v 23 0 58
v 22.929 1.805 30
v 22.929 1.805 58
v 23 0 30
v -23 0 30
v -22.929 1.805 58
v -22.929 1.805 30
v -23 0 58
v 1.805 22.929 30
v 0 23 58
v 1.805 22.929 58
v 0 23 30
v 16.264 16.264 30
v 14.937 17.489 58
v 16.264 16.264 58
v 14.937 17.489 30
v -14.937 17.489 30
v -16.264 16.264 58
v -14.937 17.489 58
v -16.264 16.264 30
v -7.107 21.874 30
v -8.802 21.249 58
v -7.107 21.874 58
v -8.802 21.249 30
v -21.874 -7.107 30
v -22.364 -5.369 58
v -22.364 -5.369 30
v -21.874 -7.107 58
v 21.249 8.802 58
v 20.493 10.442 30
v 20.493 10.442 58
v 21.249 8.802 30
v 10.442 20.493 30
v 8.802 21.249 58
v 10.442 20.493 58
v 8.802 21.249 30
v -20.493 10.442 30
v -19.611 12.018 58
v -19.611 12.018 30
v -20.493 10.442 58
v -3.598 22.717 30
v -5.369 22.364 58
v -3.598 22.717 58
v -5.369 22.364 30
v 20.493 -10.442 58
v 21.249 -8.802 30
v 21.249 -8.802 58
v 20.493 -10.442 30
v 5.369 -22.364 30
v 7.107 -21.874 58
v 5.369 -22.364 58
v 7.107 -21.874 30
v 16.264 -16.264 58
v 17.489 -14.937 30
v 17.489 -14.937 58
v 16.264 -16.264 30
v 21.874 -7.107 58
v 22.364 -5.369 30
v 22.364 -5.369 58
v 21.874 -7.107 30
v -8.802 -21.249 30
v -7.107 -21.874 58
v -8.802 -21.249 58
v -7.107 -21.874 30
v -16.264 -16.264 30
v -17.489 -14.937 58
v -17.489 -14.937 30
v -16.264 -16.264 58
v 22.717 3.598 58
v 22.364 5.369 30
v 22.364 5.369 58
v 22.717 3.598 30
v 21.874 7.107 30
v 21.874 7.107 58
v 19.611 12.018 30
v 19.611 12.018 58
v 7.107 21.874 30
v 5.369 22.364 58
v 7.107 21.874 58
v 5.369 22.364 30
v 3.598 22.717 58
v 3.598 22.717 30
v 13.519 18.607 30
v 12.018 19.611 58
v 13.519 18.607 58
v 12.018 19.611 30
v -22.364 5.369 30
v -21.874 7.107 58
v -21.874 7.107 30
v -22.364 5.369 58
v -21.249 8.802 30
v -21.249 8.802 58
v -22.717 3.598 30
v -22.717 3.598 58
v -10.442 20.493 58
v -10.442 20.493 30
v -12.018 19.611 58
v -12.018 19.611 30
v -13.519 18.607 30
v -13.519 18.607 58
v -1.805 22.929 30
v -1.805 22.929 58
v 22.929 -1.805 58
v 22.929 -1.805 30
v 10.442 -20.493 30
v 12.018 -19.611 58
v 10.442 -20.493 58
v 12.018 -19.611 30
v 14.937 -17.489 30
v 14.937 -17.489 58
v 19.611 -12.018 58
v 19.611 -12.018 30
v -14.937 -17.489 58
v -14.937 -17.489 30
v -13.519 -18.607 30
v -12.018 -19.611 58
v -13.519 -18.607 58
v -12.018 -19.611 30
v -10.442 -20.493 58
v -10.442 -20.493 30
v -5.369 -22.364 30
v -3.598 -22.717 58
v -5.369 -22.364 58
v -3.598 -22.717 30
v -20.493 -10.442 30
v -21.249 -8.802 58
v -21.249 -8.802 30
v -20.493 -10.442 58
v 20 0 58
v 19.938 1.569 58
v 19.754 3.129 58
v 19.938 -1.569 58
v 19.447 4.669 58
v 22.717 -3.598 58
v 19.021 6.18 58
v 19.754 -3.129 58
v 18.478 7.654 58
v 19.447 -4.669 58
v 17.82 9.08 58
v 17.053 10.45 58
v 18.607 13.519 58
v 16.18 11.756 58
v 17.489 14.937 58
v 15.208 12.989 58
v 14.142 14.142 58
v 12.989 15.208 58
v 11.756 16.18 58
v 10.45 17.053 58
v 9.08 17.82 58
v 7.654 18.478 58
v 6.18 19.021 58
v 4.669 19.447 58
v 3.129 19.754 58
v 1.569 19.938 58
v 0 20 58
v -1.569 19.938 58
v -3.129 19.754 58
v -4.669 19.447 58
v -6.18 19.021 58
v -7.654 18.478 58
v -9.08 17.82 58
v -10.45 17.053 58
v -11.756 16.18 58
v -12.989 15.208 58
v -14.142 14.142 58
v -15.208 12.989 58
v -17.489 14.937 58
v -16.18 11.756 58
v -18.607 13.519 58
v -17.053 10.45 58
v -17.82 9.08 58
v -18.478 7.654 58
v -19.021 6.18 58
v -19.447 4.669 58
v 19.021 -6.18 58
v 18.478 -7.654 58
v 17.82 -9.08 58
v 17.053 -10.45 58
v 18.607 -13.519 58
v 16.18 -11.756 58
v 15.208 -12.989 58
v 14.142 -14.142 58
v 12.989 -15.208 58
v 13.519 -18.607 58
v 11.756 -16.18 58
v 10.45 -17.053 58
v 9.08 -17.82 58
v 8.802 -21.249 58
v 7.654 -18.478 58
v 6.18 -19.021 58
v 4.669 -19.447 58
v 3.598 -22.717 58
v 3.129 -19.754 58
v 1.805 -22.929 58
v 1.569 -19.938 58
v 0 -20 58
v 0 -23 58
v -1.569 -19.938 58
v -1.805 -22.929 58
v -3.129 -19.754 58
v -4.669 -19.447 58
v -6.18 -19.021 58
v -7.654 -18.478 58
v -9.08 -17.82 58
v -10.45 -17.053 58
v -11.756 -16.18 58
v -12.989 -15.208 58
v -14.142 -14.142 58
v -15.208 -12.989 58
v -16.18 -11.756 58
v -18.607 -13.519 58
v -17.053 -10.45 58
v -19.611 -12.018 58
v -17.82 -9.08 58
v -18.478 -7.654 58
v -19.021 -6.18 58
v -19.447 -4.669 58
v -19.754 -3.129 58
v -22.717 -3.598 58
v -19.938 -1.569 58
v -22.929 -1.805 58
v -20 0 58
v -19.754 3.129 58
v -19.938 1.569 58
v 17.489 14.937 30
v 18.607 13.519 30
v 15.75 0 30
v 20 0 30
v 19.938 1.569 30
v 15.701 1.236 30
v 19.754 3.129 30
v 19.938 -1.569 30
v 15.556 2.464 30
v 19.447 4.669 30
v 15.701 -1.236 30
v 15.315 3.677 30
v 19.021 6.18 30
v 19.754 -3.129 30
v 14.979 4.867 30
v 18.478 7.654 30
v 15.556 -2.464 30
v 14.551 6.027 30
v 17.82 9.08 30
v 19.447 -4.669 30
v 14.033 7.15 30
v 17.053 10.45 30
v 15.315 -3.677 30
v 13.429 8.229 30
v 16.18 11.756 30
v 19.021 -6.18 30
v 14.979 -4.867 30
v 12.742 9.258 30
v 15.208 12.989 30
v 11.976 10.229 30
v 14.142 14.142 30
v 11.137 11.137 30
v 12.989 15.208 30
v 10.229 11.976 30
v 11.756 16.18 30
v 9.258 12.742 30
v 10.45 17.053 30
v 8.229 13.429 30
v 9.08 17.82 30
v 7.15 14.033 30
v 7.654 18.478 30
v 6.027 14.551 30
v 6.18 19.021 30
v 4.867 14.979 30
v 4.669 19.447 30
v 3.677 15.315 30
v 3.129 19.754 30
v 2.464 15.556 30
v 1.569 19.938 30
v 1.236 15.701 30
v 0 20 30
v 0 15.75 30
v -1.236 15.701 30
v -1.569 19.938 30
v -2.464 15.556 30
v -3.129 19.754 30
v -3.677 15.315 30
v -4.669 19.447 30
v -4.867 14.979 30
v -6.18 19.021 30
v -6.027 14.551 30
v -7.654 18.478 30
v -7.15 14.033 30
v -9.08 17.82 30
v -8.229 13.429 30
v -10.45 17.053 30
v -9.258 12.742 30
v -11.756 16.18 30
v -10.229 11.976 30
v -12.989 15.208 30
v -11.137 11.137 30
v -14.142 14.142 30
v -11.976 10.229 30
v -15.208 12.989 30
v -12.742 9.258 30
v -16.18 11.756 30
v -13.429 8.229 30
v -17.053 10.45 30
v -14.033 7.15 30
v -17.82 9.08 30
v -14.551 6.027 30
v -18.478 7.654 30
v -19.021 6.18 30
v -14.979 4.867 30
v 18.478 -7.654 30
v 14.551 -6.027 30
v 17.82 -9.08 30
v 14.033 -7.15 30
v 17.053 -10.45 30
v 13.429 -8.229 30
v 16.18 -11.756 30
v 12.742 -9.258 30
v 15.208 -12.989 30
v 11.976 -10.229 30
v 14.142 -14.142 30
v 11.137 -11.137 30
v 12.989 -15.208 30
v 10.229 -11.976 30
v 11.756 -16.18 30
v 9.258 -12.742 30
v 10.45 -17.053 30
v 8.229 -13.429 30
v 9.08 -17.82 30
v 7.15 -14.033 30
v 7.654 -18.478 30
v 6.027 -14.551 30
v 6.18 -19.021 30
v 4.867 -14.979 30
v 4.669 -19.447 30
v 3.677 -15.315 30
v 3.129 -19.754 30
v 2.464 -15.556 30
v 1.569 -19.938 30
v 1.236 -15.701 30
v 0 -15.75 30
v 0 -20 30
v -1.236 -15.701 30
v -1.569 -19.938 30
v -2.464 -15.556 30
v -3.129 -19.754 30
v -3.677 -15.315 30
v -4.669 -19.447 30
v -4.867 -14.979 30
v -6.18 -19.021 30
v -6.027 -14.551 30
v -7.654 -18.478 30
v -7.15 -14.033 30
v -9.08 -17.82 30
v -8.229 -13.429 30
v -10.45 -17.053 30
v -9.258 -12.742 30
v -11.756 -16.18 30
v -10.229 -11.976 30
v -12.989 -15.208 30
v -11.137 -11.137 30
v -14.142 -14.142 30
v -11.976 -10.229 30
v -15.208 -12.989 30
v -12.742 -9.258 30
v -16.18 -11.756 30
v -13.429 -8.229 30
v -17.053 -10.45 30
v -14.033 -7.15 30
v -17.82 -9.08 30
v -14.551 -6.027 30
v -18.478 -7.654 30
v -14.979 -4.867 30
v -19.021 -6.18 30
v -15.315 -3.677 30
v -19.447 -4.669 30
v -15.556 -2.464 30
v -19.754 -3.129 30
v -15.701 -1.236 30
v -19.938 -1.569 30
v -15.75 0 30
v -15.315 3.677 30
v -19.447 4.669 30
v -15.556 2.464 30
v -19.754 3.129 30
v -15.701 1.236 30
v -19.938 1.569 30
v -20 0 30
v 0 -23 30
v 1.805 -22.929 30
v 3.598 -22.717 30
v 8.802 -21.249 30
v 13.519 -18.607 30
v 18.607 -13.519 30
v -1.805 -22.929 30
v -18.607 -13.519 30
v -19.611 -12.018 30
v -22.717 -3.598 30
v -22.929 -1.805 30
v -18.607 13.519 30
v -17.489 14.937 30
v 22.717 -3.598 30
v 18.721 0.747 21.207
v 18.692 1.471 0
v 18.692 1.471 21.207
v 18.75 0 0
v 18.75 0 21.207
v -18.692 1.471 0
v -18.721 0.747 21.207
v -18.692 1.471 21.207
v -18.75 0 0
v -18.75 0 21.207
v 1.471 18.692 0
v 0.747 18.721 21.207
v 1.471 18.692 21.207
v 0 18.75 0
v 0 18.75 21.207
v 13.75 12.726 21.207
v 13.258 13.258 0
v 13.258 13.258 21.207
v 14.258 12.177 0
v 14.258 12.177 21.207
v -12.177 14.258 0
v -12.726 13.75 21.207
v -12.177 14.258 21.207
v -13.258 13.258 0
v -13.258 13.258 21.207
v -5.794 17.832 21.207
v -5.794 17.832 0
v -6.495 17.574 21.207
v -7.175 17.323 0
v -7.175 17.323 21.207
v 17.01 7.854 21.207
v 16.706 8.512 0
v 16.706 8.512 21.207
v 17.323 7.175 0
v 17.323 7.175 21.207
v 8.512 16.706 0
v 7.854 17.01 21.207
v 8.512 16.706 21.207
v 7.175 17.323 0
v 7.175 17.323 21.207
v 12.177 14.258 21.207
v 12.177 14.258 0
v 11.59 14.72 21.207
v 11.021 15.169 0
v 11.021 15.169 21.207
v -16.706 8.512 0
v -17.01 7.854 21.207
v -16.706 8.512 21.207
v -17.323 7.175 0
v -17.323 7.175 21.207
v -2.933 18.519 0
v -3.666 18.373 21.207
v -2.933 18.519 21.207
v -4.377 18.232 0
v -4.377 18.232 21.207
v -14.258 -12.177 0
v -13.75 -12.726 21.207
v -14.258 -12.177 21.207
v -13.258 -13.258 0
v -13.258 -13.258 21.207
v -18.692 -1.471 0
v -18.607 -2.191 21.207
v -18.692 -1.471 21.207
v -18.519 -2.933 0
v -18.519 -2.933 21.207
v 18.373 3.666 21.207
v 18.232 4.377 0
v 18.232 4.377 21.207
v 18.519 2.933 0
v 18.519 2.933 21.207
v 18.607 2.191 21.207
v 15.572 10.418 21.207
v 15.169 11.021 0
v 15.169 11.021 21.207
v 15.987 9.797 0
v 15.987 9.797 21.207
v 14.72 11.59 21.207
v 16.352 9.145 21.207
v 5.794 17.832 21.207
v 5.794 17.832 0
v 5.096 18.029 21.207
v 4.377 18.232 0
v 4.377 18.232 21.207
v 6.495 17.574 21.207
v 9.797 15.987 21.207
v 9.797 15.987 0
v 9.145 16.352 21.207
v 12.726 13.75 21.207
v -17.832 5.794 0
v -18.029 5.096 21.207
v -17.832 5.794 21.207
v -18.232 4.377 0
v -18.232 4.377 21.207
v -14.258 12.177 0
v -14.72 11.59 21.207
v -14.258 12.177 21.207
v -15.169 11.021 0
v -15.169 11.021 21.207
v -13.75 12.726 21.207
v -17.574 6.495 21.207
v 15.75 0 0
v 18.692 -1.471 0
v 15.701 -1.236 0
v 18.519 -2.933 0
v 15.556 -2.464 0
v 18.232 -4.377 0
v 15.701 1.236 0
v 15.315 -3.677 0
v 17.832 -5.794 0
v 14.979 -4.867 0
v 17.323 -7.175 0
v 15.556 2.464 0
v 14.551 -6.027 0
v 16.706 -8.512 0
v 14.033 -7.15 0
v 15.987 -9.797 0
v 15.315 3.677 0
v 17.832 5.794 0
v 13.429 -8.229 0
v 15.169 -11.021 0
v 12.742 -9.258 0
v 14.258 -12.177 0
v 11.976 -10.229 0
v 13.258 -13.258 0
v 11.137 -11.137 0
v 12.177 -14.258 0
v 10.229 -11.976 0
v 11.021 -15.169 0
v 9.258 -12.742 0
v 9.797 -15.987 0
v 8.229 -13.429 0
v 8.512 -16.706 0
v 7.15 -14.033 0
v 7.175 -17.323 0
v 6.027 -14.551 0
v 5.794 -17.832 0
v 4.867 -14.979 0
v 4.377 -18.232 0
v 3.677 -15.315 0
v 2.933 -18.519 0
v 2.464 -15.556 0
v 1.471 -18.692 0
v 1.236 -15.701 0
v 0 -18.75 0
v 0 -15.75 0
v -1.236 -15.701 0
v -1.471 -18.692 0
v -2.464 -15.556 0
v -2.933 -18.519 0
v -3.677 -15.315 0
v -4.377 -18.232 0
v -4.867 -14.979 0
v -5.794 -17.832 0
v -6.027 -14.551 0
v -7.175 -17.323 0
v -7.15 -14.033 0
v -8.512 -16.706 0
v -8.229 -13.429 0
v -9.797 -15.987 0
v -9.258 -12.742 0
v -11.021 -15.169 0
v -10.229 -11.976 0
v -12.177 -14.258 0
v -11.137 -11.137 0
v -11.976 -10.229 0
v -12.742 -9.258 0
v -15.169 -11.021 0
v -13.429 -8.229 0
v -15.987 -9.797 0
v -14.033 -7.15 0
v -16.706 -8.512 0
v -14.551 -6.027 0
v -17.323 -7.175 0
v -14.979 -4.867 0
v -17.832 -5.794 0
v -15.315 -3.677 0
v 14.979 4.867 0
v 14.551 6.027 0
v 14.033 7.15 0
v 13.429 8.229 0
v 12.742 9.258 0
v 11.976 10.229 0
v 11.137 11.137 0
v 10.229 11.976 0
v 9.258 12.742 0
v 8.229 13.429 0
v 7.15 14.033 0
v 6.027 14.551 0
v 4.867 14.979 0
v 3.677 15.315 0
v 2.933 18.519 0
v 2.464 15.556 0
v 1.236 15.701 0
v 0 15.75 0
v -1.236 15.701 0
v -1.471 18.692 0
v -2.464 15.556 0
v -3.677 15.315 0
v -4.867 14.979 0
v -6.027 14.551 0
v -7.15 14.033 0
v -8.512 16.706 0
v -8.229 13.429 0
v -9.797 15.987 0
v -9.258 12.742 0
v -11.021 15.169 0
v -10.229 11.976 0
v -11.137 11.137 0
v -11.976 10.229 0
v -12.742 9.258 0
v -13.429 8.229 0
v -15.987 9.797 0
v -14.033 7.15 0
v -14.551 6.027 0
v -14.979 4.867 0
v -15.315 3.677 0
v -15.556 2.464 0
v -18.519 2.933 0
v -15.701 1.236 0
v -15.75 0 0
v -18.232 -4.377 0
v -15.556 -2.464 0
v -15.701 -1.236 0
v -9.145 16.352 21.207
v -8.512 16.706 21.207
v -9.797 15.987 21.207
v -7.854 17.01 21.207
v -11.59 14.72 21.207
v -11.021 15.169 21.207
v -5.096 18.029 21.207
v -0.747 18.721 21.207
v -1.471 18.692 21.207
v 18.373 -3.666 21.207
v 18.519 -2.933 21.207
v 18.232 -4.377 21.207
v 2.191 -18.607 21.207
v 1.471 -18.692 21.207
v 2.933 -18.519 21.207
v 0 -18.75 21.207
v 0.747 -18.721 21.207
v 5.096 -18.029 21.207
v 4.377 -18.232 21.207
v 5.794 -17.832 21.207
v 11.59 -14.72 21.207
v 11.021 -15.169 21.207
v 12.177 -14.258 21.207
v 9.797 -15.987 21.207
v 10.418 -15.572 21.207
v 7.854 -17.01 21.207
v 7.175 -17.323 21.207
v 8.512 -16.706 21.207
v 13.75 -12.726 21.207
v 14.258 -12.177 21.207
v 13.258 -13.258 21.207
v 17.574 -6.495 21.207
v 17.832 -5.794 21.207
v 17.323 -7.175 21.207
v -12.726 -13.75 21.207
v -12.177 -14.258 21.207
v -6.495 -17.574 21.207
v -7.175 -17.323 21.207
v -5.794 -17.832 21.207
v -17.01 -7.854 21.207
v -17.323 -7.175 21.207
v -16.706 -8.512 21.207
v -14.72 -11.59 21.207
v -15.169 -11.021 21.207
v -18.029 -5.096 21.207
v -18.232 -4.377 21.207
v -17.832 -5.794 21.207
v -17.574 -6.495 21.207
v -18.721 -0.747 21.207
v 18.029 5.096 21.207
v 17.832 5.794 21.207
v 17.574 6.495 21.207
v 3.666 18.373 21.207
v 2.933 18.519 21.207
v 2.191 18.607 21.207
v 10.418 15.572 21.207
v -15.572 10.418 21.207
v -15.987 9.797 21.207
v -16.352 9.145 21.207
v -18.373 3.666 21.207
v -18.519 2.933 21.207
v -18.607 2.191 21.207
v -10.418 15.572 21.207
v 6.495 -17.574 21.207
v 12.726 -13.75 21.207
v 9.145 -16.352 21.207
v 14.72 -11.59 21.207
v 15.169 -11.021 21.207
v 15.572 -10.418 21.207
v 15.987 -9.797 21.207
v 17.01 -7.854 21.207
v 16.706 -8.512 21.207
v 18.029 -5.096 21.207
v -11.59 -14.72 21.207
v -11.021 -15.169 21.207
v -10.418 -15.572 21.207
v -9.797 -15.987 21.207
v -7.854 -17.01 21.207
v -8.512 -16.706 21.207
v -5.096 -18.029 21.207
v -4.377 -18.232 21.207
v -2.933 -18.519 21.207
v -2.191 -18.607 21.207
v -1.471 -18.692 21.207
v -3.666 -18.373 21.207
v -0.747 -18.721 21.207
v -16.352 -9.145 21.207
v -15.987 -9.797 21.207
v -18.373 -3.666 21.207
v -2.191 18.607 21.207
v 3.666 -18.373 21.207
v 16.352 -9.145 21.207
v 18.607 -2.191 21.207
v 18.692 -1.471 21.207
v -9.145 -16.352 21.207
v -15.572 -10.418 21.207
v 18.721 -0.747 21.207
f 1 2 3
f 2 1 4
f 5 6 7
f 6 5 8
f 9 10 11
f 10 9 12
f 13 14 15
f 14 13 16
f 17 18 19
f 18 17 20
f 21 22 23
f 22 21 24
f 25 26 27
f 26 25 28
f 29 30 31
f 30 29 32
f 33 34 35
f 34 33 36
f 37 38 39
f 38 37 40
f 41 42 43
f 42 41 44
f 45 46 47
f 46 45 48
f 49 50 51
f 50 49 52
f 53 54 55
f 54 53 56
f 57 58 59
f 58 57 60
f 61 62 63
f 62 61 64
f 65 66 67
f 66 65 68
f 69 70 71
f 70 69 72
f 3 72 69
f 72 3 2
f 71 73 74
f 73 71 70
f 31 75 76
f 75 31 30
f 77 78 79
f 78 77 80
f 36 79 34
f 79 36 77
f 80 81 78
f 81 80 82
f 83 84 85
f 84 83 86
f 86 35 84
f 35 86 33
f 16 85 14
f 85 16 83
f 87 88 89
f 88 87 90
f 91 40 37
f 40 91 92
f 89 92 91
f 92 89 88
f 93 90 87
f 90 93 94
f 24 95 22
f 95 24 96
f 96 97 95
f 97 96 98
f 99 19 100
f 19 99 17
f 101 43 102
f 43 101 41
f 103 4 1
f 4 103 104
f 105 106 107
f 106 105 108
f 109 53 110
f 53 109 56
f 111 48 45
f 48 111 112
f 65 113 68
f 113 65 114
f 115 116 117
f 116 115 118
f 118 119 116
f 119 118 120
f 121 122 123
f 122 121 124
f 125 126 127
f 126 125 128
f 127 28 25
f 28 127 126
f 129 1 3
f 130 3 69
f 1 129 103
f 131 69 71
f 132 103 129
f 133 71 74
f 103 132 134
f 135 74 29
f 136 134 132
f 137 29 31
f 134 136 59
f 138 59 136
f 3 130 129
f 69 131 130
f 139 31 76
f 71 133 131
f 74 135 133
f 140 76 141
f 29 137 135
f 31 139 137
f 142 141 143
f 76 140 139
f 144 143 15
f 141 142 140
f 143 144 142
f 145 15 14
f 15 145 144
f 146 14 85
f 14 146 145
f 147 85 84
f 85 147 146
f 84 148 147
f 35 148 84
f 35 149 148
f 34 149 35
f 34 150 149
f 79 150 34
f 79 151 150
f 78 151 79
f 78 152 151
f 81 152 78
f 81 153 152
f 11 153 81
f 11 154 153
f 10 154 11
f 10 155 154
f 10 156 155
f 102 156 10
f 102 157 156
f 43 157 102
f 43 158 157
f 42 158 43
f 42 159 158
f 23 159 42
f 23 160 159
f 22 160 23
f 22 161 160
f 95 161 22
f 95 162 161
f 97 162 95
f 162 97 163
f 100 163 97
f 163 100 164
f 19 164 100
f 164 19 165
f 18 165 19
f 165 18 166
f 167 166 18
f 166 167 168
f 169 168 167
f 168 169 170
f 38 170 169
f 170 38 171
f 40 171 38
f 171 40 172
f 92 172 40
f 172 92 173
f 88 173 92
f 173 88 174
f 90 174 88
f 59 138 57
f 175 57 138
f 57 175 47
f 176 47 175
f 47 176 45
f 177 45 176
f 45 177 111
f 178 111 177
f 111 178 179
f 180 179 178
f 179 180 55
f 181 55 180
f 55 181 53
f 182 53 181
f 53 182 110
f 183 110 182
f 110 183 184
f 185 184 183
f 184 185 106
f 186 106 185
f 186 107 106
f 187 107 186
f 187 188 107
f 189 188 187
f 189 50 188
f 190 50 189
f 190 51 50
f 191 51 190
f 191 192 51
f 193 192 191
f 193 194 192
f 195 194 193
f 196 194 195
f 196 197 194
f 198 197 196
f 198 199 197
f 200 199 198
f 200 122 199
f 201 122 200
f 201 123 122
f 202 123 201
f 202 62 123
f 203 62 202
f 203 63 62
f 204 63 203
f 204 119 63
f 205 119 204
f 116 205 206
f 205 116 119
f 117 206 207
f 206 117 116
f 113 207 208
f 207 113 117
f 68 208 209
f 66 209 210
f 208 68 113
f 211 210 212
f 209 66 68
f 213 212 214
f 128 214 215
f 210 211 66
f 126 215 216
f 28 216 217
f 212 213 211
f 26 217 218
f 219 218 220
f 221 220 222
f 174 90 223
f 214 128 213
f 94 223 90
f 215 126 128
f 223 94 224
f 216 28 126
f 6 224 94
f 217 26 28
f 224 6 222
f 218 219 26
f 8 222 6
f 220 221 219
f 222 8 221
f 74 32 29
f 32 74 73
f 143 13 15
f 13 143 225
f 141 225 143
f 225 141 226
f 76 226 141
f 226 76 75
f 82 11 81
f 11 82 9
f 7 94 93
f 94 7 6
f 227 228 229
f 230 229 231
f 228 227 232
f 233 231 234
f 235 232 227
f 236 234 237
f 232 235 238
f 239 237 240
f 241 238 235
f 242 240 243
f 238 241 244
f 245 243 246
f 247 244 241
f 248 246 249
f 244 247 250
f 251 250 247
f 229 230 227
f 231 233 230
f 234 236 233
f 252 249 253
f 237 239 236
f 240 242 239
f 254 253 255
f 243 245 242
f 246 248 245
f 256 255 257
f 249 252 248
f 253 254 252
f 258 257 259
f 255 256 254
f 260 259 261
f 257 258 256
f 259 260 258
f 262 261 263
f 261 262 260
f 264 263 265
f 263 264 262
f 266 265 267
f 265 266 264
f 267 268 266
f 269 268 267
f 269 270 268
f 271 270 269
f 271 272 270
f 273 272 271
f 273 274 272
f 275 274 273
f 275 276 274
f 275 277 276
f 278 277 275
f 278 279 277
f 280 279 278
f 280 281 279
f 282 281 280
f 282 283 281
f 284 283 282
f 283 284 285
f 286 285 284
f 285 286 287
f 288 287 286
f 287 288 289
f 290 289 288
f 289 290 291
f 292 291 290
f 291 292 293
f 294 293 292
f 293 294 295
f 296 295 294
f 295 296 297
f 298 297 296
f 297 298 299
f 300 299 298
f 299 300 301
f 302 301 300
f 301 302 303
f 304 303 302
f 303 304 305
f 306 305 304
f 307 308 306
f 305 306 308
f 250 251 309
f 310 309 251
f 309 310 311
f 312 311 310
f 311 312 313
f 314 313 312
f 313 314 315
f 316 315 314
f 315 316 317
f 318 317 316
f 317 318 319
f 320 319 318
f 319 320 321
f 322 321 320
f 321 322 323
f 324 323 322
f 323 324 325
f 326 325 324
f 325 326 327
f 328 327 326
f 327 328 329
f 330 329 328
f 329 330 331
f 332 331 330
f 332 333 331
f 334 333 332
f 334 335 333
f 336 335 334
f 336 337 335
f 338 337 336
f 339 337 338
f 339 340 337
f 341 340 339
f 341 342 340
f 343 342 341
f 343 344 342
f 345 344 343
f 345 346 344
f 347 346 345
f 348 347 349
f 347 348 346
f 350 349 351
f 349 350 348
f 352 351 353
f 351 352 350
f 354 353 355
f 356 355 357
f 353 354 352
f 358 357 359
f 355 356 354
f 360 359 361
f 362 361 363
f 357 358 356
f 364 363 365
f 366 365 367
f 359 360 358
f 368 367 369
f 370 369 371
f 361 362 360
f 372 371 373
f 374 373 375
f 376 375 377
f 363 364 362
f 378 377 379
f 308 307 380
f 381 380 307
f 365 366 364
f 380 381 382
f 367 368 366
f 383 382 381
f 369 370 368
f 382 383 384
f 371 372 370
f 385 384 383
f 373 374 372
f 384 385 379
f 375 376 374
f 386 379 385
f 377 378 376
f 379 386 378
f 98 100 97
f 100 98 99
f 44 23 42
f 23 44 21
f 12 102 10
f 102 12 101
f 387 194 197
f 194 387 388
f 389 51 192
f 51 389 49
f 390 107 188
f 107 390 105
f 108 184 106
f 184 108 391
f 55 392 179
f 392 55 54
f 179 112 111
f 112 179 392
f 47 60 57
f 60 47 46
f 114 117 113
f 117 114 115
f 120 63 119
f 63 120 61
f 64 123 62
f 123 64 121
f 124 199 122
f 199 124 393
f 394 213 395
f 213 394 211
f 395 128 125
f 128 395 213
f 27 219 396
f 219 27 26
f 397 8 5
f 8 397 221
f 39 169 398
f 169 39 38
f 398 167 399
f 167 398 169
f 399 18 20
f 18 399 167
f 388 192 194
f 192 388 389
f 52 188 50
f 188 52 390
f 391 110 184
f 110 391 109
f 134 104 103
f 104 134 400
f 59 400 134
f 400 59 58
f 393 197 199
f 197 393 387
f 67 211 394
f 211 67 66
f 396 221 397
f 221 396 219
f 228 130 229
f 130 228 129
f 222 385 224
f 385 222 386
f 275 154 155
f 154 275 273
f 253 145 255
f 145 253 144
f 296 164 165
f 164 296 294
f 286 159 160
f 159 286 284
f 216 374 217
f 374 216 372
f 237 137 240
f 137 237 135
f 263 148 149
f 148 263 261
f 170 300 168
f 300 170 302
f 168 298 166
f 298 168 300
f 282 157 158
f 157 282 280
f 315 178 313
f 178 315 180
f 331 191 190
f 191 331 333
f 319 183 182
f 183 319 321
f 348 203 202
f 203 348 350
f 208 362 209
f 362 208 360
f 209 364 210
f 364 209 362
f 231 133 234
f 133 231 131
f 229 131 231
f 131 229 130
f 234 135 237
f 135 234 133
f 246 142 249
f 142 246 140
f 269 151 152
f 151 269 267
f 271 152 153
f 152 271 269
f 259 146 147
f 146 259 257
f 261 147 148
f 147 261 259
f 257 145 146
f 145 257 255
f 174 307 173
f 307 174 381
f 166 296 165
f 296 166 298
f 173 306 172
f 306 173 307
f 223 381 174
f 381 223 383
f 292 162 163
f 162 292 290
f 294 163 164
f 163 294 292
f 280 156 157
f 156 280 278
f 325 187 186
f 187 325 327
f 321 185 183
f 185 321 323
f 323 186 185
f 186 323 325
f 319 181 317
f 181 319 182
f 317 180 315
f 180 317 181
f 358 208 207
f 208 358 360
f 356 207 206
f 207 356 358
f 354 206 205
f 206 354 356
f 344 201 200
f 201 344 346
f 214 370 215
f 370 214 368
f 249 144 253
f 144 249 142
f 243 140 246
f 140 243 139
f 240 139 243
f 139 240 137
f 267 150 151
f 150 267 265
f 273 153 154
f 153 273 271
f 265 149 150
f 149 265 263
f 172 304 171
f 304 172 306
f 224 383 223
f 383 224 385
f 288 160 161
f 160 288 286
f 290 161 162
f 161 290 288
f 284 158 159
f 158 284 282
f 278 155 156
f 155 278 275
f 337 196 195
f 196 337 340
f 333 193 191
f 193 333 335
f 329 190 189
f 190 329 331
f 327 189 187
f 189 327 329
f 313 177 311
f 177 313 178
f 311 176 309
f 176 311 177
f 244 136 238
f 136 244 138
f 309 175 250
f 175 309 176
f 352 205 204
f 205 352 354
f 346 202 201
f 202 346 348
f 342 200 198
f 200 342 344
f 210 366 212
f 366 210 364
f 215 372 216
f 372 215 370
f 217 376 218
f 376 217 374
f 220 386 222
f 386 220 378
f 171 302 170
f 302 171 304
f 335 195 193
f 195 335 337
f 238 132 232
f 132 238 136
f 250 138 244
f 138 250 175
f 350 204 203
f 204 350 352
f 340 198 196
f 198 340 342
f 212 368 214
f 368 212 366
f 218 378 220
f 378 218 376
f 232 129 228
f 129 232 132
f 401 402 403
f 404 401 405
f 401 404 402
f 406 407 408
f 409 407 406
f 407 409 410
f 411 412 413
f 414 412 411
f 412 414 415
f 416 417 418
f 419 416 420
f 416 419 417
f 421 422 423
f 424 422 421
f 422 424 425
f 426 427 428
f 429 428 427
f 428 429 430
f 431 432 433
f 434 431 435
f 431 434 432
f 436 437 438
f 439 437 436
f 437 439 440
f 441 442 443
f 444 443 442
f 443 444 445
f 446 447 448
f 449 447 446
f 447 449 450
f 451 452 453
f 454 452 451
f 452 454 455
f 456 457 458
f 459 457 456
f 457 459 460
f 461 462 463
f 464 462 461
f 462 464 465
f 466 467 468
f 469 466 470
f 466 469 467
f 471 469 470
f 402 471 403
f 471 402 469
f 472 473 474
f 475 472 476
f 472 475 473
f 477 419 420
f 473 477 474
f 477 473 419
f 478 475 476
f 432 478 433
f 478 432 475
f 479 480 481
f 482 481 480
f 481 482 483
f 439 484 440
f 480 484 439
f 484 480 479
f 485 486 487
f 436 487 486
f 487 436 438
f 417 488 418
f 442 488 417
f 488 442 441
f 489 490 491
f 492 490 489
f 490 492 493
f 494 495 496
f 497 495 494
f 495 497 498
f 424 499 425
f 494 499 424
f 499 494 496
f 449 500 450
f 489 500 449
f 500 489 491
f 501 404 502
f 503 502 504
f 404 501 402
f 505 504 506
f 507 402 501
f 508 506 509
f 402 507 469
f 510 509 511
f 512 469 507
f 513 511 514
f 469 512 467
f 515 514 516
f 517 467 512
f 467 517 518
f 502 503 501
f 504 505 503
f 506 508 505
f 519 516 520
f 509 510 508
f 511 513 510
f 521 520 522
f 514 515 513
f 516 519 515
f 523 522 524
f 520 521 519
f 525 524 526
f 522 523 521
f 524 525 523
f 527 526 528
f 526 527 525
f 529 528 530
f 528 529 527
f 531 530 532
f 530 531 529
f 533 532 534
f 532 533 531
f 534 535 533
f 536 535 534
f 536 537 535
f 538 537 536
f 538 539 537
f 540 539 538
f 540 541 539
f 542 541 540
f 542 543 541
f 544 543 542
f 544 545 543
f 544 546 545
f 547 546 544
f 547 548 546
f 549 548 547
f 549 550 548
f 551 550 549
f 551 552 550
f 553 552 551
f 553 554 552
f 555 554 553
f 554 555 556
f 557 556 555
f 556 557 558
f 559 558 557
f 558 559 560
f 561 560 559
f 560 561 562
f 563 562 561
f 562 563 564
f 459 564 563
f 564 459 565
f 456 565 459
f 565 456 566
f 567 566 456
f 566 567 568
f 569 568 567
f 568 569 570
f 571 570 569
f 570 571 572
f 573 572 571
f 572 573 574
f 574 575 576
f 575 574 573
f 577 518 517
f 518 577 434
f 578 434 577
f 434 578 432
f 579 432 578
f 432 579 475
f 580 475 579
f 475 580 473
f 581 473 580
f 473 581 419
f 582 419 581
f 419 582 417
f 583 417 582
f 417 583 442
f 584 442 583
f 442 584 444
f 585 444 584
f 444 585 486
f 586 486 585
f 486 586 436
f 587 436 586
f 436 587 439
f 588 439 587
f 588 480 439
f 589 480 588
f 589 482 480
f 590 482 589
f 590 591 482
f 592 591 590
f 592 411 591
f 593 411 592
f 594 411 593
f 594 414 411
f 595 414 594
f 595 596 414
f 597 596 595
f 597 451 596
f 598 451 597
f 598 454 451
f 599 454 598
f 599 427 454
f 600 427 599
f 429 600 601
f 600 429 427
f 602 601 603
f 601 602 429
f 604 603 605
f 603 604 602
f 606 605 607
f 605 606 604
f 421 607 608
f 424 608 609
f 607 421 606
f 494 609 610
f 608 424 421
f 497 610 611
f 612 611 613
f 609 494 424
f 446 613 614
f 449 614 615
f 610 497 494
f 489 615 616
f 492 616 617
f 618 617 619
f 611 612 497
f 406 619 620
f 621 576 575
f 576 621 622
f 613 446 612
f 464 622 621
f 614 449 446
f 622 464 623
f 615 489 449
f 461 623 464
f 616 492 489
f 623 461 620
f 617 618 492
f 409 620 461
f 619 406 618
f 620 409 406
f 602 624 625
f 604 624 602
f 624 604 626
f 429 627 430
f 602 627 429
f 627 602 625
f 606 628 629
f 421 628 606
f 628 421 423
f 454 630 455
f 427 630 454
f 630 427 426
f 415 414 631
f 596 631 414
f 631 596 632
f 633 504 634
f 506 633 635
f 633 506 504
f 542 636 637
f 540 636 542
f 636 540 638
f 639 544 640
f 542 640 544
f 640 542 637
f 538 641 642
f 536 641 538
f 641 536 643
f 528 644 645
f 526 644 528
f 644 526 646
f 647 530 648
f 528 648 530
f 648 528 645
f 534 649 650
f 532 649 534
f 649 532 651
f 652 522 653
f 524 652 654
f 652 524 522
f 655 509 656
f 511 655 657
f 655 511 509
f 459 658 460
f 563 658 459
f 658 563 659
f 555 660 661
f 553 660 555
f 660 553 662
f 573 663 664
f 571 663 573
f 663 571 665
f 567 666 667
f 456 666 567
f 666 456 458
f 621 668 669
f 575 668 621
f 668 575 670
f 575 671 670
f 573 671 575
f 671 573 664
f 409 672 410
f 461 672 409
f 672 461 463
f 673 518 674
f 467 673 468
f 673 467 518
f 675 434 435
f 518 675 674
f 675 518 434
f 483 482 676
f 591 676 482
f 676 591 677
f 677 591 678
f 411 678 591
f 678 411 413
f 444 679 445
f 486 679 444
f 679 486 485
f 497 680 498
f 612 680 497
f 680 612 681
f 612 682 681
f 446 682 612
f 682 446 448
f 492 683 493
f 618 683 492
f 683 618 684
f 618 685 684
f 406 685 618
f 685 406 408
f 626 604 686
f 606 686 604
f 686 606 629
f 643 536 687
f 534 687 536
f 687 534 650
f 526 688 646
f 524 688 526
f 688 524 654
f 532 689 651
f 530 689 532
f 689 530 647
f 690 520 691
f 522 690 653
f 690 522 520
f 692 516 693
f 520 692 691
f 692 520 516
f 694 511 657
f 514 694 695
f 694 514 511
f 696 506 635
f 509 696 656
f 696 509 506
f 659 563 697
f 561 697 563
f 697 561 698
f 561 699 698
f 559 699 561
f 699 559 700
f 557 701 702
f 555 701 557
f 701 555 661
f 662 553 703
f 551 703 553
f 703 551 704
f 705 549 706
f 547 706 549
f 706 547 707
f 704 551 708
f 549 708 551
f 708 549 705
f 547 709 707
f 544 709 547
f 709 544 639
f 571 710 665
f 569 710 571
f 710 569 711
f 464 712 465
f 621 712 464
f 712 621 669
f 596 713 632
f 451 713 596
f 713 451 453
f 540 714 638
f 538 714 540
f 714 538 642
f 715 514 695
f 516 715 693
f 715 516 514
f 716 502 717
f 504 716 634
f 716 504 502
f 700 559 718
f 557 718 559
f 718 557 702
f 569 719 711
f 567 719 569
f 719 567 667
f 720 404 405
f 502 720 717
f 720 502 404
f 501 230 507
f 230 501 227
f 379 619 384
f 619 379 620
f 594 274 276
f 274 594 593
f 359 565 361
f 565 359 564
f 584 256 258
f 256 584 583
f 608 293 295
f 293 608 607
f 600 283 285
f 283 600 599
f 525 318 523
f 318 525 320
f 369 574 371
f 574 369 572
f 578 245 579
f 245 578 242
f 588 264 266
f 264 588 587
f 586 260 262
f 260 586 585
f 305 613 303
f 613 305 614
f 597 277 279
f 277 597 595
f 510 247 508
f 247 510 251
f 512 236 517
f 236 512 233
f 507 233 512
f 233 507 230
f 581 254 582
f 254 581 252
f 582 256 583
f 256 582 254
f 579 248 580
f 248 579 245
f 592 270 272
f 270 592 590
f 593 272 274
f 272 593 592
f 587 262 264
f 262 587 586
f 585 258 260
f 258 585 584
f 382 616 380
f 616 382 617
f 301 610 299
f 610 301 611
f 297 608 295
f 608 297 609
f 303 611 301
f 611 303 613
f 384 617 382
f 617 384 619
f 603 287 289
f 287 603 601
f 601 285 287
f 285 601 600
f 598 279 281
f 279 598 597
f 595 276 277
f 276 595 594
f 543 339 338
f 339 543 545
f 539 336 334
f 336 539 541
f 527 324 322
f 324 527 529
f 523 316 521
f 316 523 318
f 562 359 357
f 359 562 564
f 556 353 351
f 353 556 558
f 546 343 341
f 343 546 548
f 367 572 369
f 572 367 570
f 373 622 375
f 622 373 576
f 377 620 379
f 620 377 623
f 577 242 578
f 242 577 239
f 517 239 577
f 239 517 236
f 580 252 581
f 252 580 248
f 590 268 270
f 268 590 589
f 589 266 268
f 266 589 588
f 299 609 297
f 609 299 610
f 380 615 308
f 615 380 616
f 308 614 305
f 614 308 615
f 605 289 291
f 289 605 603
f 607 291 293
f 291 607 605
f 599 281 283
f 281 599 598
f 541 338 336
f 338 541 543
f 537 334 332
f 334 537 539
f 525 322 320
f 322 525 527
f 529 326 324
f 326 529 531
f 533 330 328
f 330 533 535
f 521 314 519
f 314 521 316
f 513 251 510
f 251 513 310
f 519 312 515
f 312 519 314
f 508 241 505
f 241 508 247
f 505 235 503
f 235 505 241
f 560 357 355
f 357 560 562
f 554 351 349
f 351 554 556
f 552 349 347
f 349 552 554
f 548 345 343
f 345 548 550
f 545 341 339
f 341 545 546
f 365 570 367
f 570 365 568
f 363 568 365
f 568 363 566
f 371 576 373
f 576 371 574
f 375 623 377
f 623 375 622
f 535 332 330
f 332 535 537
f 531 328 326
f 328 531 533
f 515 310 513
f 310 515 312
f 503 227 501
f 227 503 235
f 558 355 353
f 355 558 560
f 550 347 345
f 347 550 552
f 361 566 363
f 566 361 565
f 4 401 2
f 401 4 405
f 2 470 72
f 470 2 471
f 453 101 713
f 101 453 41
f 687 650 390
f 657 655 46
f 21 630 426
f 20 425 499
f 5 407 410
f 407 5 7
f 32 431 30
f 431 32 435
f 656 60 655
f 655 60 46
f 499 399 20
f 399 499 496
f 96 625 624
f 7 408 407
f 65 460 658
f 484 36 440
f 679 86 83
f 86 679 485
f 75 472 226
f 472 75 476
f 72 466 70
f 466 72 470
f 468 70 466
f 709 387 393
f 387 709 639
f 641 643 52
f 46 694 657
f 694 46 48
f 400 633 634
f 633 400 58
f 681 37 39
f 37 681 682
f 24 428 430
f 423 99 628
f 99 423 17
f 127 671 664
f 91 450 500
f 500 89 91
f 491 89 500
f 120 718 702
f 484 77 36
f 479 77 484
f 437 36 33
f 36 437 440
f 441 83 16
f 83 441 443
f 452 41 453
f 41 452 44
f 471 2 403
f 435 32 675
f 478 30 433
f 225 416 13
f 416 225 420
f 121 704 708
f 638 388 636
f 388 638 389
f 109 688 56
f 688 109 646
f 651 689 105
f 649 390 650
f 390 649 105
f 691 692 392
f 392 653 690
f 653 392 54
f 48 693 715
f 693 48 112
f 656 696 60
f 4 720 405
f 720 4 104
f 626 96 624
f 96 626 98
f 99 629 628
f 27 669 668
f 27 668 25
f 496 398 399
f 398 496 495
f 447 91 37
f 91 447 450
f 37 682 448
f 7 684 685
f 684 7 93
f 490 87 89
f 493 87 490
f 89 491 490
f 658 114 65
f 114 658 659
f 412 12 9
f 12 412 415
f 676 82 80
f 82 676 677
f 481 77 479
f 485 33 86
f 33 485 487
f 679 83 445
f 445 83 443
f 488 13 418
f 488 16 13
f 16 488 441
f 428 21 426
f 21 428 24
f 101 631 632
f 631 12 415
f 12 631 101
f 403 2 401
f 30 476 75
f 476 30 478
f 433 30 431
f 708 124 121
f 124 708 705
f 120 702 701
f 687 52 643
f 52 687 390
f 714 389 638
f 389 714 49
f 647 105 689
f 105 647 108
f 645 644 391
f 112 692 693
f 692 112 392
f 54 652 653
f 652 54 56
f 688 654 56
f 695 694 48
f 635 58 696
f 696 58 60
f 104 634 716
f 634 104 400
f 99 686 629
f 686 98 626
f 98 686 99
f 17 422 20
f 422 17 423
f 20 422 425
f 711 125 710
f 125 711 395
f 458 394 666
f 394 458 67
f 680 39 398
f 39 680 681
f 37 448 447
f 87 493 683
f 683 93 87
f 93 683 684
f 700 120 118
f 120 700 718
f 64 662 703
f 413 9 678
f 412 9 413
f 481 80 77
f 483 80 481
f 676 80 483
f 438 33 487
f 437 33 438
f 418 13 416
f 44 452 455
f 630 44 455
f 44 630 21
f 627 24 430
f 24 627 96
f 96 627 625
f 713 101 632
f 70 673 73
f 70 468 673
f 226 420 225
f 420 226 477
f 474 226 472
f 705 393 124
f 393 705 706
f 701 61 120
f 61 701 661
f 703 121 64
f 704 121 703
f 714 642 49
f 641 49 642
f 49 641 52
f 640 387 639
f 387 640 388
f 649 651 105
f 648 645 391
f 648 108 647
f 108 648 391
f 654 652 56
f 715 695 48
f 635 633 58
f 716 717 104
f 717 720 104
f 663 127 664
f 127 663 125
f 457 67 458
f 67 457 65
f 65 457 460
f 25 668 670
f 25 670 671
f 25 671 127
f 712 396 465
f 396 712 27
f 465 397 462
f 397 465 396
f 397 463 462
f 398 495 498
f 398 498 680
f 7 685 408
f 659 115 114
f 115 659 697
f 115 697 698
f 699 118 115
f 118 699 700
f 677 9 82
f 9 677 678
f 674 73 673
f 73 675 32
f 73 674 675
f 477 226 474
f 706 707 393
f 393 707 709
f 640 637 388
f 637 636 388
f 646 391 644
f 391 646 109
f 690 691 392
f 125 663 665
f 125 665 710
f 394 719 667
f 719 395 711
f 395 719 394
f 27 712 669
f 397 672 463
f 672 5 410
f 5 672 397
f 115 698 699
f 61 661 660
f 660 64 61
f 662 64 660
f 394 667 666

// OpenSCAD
// An adapter to fit the hose from my Shop-Vac 9520262 5-Gallon
// 4.5-Peak HP Hang Up Wall Mounted Wet/Dry Vacuum to the dust adapter
// on my DeWalt DW705 12" mitre saw.
//
wall_thickness = 3;
dw_adapter_id = 40;
sv_adapter_id = 31.5;

dw_h = 28;
sv_h = 30;
joiner_h = 15;
$fn = 80;

version = 1.0;

module dw_fitting() {
  difference() {
    cylinder(h=dw_h, r=(dw_adapter_id / 2) + wall_thickness, center=true);
    cylinder(h=dw_h+0.1, r=(dw_adapter_id / 2), center=true);
  }
}

module sv_fitting() {
  difference() {
    cylinder(h=sv_h, r=(sv_adapter_id / 2) + wall_thickness, center=true);
    cylinder(h=sv_h+0.1, r=(sv_adapter_id / 2), center=true);
  }
}

module cylinder_joiner() {
  difference() {
    cylinder(h=joiner_h, r1=(dw_adapter_id / 2) + wall_thickness,
             r2=(sv_adapter_id / 2), center=true);
    cylinder(h=joiner_h+0.1, r=(sv_adapter_id / 2), center=true);
  }
}

module adapter() {
  translate(v=[0,0,sv_h+(dw_h/2)]) {
    mirror([0,0,1]) {
      union() {
        dw_fitting();
        translate(v=[0,0,(dw_h/2) + (sv_h/2)]) {
          sv_fitting();
        }
        translate(v=[0,0,(dw_h/2) + (joiner_h/2)]) {
          cylinder_joiner();
        }
      }
    }
  }
}

adapter();
/* dw_fitting(); */
/* sv_fitting(); */
